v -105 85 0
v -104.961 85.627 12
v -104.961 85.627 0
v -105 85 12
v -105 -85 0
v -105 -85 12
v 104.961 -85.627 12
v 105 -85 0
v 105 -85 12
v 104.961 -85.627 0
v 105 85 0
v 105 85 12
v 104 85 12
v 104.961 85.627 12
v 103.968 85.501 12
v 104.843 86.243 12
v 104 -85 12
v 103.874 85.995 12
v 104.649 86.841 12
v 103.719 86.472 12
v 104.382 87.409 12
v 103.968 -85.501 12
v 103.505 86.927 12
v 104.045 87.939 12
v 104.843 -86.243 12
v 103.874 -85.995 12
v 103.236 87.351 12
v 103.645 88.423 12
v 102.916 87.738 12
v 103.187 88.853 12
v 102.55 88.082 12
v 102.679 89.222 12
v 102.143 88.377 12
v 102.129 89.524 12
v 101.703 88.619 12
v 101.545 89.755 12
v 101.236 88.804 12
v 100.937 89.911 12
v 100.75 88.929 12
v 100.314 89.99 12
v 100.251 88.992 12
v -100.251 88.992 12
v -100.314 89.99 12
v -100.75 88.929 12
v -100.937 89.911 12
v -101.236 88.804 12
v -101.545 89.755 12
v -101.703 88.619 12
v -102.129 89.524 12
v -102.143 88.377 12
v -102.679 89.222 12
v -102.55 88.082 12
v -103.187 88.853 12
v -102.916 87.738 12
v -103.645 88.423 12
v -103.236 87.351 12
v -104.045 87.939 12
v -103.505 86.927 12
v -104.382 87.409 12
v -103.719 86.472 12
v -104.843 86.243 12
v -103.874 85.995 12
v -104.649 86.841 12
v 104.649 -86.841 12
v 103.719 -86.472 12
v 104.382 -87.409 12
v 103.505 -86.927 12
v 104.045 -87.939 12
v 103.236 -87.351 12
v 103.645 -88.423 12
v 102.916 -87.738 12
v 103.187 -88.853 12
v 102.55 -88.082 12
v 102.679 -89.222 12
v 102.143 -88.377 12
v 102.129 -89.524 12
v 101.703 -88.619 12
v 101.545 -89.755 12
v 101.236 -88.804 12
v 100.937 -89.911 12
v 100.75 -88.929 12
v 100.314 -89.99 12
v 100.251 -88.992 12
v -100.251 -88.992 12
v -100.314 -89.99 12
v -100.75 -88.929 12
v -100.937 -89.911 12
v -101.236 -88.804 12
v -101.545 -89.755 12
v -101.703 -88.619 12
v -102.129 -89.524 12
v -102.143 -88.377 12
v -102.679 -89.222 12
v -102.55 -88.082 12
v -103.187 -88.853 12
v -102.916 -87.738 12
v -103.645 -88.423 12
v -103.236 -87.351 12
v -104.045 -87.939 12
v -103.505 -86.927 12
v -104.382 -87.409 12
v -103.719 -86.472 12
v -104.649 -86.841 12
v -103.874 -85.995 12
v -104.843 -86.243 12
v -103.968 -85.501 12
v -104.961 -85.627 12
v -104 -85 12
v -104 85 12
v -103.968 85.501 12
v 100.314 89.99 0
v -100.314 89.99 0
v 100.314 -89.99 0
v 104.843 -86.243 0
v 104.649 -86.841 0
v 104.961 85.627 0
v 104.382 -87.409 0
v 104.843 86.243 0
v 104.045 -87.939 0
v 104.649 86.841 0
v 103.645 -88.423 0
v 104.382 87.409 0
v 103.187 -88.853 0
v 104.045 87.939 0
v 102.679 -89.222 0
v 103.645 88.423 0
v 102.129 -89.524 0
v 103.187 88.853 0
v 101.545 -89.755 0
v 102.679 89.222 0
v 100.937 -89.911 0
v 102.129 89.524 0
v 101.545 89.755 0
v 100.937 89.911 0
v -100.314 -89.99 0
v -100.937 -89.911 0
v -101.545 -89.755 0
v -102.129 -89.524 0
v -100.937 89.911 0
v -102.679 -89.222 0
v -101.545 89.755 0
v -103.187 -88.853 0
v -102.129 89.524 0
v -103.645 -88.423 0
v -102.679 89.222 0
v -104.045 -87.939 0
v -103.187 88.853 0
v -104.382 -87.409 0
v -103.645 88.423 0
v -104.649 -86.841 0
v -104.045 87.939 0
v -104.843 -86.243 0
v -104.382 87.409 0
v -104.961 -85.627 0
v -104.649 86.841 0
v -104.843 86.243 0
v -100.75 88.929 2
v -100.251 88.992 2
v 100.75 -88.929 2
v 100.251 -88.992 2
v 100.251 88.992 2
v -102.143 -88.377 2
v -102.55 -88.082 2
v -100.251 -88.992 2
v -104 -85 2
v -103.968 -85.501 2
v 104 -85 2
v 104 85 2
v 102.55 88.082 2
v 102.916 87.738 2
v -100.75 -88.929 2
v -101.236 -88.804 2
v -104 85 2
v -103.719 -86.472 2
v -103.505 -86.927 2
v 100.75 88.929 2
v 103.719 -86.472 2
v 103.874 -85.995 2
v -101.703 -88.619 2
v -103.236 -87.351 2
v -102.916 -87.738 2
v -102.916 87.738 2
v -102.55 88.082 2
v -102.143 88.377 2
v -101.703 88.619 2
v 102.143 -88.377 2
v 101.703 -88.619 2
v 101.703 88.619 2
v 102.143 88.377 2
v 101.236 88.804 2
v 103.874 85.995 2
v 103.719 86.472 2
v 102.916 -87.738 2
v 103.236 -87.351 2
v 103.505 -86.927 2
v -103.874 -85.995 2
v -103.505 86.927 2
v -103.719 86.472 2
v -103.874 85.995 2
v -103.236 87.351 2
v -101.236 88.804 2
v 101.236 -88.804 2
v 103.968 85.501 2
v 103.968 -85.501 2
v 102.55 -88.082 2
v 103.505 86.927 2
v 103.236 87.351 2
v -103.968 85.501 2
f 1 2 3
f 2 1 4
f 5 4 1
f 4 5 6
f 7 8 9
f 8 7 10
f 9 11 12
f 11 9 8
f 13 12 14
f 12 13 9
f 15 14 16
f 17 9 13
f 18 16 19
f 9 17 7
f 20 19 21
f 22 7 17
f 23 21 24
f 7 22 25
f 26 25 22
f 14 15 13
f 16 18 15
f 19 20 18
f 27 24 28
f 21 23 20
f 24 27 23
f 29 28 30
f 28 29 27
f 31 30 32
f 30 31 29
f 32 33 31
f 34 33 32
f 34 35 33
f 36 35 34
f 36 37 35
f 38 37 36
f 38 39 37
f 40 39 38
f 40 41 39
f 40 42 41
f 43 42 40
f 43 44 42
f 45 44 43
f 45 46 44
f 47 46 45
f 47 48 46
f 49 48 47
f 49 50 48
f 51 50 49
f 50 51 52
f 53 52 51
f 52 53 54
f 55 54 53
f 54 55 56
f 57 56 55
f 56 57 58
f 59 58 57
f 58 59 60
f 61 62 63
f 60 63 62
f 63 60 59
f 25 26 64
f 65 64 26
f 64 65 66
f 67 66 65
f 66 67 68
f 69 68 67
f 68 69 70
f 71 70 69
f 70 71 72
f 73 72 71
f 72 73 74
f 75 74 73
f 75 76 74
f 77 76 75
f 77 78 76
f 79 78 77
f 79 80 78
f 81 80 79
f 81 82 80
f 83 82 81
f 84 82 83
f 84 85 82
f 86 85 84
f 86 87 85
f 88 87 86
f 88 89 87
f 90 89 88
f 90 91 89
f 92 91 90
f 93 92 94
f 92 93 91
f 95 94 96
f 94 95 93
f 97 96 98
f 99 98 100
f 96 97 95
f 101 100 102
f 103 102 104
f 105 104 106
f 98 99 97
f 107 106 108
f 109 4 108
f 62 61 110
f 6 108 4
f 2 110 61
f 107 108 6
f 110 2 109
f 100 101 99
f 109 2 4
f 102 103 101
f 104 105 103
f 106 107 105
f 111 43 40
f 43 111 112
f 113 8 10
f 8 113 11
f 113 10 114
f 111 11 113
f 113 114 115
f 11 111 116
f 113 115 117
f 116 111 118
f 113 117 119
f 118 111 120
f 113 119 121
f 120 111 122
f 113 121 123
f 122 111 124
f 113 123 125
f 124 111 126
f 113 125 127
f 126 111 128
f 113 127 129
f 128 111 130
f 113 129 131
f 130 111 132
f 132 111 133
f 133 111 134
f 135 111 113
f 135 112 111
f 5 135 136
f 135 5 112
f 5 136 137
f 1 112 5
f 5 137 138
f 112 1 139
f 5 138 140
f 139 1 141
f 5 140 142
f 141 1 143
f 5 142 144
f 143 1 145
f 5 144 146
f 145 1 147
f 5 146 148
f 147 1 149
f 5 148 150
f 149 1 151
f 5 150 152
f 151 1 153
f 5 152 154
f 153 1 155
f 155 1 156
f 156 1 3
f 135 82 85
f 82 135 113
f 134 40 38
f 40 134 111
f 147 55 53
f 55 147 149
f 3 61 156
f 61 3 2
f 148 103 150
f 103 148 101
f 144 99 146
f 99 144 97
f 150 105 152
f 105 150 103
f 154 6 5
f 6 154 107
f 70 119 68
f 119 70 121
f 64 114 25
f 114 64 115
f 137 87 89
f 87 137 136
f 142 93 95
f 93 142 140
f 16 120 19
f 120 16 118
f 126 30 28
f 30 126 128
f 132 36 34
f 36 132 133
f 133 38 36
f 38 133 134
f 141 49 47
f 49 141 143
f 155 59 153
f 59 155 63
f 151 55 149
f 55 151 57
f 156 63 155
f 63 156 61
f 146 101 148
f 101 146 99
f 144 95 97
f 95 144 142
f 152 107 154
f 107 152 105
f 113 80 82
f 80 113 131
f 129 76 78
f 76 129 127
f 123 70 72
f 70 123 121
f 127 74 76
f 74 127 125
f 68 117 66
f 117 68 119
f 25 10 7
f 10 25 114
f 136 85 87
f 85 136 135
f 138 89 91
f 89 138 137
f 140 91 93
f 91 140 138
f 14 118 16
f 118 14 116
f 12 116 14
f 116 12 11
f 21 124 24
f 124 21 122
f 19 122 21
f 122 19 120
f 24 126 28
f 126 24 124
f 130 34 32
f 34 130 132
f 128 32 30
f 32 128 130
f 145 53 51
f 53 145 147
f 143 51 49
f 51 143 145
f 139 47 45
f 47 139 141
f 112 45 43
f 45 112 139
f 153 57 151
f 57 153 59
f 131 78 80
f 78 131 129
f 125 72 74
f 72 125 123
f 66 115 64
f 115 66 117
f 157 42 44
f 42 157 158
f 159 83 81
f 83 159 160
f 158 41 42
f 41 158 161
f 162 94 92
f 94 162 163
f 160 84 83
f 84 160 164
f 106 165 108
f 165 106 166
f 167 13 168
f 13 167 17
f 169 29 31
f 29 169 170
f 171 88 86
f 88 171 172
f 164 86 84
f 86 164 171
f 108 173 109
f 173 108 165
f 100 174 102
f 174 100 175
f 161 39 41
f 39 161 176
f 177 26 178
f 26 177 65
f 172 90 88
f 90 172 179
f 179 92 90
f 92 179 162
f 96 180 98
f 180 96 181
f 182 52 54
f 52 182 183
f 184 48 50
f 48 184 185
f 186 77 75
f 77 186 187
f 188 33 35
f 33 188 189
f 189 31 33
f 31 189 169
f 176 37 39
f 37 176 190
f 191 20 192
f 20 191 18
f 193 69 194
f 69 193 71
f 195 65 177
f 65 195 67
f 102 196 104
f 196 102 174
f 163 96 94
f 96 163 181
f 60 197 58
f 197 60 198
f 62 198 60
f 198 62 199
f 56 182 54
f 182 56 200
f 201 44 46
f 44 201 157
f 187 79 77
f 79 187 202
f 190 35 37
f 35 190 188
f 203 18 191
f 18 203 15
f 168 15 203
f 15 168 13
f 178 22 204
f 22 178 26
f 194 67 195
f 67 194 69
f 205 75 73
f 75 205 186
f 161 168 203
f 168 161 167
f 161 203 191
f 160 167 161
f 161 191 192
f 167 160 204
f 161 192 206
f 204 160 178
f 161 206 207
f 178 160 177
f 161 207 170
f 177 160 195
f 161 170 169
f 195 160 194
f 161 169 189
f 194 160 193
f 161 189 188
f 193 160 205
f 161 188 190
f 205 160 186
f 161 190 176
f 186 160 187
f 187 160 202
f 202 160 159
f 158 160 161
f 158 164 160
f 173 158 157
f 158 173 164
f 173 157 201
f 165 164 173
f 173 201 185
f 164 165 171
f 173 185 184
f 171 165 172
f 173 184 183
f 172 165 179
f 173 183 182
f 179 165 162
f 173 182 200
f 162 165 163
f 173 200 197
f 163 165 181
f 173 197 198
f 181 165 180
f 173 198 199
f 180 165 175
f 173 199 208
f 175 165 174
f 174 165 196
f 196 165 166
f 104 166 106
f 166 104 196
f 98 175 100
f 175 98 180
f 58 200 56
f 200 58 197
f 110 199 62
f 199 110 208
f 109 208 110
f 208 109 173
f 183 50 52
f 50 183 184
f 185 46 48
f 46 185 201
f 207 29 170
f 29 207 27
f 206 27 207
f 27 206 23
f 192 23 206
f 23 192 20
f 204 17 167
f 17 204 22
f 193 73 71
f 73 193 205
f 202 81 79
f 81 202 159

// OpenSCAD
$fn = 50;


difference() {
	union() {
		hull() {
			translate(v = [-100.0000000000, 85.0000000000, 0]) {
				cylinder(h = 12, r = 5);
			}
			translate(v = [100.0000000000, 85.0000000000, 0]) {
				cylinder(h = 12, r = 5);
			}
			translate(v = [-100.0000000000, -85.0000000000, 0]) {
				cylinder(h = 12, r = 5);
			}
			translate(v = [100.0000000000, -85.0000000000, 0]) {
				cylinder(h = 12, r = 5);
			}
		}
	}
	union() {
		translate(v = [0, 0, 2]) {
			hull() {
				translate(v = [-100.0000000000, 85.0000000000, 0]) {
					cylinder(h = 10, r = 4);
				}
				translate(v = [100.0000000000, 85.0000000000, 0]) {
					cylinder(h = 10, r = 4);
				}
				translate(v = [-100.0000000000, -85.0000000000, 0]) {
					cylinder(h = 10, r = 4);
				}
				translate(v = [100.0000000000, -85.0000000000, 0]) {
					cylinder(h = 10, r = 4);
				}
			}
		}
	}
}
